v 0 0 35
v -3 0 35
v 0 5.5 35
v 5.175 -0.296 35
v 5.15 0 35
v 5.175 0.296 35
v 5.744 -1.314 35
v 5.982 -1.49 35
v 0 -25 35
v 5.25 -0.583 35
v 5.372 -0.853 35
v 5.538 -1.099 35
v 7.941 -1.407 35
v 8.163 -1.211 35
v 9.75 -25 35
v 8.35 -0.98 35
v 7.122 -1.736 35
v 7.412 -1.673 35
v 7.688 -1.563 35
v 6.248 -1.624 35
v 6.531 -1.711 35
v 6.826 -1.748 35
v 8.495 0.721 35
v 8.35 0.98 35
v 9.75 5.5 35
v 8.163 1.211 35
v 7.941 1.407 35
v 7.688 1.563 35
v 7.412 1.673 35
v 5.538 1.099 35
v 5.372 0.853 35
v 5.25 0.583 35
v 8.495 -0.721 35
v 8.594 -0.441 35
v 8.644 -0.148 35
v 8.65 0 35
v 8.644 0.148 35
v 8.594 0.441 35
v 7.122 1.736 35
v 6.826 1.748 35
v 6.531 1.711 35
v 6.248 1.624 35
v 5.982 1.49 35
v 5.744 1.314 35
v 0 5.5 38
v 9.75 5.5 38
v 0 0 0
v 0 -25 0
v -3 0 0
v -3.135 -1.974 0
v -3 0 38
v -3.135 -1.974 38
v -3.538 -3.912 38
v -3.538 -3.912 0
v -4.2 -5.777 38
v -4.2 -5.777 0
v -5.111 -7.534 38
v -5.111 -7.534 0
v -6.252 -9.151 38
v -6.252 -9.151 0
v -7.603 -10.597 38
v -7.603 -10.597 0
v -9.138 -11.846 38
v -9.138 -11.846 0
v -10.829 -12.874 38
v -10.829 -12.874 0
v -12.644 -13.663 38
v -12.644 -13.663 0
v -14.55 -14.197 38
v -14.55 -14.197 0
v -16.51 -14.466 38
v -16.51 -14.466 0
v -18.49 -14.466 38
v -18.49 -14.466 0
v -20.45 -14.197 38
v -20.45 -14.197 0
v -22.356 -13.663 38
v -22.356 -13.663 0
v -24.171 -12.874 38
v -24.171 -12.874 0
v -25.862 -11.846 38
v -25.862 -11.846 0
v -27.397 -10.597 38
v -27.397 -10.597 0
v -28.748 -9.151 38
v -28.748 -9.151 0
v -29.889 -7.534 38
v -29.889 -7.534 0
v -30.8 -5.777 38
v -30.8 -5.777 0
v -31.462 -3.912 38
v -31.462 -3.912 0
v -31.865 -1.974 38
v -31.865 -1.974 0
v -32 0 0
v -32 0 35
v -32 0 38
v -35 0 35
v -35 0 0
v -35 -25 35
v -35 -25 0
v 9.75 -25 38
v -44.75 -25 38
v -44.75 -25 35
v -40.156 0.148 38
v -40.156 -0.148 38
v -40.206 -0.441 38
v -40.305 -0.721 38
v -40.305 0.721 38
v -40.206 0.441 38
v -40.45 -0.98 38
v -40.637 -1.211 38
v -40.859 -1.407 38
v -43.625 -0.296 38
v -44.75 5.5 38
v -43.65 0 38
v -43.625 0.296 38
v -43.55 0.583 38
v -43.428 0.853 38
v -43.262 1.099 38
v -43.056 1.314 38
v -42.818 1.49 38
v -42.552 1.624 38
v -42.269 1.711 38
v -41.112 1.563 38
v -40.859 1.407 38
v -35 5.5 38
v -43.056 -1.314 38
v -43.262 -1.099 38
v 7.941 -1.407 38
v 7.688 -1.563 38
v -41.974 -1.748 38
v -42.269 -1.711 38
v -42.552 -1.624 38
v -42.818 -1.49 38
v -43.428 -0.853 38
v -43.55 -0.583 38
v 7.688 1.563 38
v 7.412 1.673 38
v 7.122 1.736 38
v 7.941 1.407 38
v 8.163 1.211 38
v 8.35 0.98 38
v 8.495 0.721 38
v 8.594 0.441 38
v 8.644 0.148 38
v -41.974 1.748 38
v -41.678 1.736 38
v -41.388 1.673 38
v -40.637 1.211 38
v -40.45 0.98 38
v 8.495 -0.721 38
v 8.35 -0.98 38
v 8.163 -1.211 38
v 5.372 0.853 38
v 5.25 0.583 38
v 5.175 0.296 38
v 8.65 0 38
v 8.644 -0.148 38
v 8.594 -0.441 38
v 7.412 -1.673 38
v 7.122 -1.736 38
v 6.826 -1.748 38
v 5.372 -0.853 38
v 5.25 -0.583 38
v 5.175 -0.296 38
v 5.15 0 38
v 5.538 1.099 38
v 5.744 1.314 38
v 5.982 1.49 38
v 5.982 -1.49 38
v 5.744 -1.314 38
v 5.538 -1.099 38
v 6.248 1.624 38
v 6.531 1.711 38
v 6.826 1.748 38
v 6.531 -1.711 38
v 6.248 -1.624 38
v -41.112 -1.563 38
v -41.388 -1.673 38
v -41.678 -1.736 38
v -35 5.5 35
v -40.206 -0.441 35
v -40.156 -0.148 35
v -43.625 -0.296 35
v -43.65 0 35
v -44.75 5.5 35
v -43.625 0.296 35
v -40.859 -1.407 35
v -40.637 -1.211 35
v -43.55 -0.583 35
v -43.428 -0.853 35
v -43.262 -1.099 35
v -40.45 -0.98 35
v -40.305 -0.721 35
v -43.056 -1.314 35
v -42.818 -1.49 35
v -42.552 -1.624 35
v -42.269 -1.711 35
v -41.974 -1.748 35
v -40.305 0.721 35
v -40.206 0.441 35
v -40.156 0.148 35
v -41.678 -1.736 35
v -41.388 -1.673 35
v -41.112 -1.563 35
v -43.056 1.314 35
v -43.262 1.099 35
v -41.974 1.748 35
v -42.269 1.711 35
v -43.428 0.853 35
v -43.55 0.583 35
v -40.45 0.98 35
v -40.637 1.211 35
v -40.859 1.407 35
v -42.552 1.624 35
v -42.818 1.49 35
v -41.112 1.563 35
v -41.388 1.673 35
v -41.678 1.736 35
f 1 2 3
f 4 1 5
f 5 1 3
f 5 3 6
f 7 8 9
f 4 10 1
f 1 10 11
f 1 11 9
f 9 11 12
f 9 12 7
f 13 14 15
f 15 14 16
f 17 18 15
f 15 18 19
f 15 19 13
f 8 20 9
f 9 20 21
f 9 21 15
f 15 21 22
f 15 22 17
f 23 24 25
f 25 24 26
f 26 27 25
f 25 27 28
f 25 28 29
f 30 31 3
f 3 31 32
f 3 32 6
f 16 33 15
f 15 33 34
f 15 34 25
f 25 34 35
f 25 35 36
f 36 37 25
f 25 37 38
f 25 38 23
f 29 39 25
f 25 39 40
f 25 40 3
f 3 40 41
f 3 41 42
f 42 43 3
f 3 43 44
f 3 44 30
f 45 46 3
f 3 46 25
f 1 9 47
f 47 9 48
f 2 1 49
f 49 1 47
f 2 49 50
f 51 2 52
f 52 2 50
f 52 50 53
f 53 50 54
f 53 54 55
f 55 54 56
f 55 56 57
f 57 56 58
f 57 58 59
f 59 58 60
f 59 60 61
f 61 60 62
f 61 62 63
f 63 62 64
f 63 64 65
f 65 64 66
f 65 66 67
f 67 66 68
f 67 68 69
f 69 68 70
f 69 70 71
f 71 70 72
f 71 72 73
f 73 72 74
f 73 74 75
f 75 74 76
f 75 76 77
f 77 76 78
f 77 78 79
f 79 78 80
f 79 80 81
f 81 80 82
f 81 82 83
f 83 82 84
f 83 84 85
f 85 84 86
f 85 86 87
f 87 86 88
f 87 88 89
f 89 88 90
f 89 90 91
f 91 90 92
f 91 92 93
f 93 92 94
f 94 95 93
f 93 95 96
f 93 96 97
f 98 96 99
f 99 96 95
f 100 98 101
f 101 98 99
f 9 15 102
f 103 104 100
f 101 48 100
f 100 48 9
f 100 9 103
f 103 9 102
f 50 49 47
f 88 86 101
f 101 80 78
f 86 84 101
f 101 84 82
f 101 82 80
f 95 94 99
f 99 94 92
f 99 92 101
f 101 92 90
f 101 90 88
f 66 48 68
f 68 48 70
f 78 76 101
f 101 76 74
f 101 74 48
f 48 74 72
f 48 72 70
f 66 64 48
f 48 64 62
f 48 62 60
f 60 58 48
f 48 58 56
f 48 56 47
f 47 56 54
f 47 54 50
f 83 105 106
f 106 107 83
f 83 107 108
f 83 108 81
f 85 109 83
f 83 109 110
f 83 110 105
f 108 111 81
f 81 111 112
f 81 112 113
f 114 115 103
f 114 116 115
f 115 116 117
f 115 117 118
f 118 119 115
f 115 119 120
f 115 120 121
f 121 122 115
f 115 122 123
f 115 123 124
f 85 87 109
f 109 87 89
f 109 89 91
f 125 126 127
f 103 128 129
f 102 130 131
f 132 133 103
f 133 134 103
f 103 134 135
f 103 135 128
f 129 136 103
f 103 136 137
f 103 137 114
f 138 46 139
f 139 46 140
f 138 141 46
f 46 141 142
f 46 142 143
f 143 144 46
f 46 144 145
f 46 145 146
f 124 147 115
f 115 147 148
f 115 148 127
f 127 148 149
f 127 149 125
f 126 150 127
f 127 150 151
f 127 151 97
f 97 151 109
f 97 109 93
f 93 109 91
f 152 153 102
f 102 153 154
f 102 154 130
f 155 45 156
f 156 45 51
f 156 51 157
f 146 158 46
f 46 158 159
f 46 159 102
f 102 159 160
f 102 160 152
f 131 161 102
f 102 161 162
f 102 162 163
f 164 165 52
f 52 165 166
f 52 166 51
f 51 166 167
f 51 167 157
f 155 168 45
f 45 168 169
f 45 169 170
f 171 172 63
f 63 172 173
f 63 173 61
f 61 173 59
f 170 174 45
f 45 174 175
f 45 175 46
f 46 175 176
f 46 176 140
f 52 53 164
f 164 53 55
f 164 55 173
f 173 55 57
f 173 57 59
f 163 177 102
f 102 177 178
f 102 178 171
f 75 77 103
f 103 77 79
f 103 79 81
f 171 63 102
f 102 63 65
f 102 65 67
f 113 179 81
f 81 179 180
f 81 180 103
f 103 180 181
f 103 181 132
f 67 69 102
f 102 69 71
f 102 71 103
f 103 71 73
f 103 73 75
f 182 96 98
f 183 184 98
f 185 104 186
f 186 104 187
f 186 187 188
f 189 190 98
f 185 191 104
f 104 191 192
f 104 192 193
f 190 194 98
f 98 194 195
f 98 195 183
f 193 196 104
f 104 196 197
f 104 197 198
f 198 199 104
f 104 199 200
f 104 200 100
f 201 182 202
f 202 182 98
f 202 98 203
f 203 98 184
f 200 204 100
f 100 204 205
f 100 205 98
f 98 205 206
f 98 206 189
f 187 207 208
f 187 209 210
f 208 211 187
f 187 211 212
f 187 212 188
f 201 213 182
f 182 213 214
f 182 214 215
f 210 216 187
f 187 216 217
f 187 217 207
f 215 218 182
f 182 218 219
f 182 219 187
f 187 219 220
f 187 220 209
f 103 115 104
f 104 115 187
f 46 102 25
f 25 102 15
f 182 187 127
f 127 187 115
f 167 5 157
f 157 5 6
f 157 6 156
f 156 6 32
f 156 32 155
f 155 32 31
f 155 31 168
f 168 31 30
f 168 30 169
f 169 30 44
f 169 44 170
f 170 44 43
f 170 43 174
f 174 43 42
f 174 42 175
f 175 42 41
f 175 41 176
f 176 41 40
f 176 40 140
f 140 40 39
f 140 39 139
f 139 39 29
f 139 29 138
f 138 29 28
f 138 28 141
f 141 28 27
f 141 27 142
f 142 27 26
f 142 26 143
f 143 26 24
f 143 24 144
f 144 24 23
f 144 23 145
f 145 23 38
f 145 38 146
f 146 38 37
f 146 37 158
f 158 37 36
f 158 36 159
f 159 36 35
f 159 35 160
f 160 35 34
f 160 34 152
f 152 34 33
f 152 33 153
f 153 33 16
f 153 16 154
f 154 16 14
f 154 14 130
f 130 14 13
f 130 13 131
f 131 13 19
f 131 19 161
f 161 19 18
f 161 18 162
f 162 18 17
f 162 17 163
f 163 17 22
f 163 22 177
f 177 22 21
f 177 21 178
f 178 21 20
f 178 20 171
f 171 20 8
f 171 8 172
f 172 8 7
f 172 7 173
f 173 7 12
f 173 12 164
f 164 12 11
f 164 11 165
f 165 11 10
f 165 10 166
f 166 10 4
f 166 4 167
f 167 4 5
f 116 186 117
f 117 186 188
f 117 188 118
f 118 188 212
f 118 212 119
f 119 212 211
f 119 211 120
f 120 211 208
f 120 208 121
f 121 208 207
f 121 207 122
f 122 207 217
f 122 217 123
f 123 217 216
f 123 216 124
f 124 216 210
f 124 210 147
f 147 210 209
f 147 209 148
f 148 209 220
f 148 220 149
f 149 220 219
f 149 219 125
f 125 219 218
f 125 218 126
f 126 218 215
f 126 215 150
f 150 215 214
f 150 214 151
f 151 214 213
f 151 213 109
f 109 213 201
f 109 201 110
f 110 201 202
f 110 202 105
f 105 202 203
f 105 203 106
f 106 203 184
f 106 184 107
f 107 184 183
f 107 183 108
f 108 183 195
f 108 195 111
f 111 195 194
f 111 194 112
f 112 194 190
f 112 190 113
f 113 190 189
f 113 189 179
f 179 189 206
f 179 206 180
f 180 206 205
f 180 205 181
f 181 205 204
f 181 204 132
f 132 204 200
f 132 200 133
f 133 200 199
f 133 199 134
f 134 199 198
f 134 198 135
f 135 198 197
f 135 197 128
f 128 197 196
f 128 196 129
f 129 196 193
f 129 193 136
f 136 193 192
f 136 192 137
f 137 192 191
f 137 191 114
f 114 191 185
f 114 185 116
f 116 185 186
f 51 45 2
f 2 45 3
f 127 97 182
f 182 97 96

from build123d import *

# Parameters (mm, degrees)
EXTRUDE_1_DEPTH     = 35
SKETCH_2_W          = 54.5
SKETCH_2_H          = 30.5
SKETCH_2_R          = 1.75
EXTRUDE_2_DEPTH     = 3
CUT_EXTRUDE_2_DEPTH = 63.069014009


with BuildPart() as part:
    # Эскиз1 → Бобышка-Вытянуть1 (new body)
    with BuildSketch(Plane.XY):
        with BuildLine():
            Line((-32, 0), (-35, 0))
            Line((-35, 0), (-35, -25))
            Line((-35, -25), (0, -25))
            Line((0, -25), (0, 0))
            Line((0, 0), (-3, 0))
            ThreePointArc((-3, 0), (-17.5, -14.5), (-32, 0))
        make_face()
    extrude(amount=EXTRUDE_1_DEPTH)

    # Эскиз2 → Бобышка-Вытянуть2 (add)
    with BuildSketch(Plane.XY.offset(35)):
        with Locations((-17.5, -9.75)):
            Rectangle(SKETCH_2_W, SKETCH_2_H)
        with Locations((6.9, 0)):
            Circle(SKETCH_2_R, mode=Mode.SUBTRACT)
        with Locations(Location((-41.9, 0, 0), (0, 0, 180))):
            Circle(SKETCH_2_R, mode=Mode.SUBTRACT)
    extrude(amount=EXTRUDE_2_DEPTH)

    # Эскиз3 → Вырез-Вытянуть2 (cut, through all)
    with BuildSketch(Plane(origin=(0, 0, 35), x_dir=(-1, 0, 0), z_dir=(0, 0, -1))):
        with BuildLine():
            Line((3, 0), (0, 5.5))
            Line((0, 5.5), (35, 5.5))
            Line((35, 5.5), (32, 0))
            ThreePointArc((32, 0), (17.5, -14.5), (3, 0))
        make_face()
    extrude(amount=-CUT_EXTRUDE_2_DEPTH, mode=Mode.SUBTRACT)


solid = part.part
